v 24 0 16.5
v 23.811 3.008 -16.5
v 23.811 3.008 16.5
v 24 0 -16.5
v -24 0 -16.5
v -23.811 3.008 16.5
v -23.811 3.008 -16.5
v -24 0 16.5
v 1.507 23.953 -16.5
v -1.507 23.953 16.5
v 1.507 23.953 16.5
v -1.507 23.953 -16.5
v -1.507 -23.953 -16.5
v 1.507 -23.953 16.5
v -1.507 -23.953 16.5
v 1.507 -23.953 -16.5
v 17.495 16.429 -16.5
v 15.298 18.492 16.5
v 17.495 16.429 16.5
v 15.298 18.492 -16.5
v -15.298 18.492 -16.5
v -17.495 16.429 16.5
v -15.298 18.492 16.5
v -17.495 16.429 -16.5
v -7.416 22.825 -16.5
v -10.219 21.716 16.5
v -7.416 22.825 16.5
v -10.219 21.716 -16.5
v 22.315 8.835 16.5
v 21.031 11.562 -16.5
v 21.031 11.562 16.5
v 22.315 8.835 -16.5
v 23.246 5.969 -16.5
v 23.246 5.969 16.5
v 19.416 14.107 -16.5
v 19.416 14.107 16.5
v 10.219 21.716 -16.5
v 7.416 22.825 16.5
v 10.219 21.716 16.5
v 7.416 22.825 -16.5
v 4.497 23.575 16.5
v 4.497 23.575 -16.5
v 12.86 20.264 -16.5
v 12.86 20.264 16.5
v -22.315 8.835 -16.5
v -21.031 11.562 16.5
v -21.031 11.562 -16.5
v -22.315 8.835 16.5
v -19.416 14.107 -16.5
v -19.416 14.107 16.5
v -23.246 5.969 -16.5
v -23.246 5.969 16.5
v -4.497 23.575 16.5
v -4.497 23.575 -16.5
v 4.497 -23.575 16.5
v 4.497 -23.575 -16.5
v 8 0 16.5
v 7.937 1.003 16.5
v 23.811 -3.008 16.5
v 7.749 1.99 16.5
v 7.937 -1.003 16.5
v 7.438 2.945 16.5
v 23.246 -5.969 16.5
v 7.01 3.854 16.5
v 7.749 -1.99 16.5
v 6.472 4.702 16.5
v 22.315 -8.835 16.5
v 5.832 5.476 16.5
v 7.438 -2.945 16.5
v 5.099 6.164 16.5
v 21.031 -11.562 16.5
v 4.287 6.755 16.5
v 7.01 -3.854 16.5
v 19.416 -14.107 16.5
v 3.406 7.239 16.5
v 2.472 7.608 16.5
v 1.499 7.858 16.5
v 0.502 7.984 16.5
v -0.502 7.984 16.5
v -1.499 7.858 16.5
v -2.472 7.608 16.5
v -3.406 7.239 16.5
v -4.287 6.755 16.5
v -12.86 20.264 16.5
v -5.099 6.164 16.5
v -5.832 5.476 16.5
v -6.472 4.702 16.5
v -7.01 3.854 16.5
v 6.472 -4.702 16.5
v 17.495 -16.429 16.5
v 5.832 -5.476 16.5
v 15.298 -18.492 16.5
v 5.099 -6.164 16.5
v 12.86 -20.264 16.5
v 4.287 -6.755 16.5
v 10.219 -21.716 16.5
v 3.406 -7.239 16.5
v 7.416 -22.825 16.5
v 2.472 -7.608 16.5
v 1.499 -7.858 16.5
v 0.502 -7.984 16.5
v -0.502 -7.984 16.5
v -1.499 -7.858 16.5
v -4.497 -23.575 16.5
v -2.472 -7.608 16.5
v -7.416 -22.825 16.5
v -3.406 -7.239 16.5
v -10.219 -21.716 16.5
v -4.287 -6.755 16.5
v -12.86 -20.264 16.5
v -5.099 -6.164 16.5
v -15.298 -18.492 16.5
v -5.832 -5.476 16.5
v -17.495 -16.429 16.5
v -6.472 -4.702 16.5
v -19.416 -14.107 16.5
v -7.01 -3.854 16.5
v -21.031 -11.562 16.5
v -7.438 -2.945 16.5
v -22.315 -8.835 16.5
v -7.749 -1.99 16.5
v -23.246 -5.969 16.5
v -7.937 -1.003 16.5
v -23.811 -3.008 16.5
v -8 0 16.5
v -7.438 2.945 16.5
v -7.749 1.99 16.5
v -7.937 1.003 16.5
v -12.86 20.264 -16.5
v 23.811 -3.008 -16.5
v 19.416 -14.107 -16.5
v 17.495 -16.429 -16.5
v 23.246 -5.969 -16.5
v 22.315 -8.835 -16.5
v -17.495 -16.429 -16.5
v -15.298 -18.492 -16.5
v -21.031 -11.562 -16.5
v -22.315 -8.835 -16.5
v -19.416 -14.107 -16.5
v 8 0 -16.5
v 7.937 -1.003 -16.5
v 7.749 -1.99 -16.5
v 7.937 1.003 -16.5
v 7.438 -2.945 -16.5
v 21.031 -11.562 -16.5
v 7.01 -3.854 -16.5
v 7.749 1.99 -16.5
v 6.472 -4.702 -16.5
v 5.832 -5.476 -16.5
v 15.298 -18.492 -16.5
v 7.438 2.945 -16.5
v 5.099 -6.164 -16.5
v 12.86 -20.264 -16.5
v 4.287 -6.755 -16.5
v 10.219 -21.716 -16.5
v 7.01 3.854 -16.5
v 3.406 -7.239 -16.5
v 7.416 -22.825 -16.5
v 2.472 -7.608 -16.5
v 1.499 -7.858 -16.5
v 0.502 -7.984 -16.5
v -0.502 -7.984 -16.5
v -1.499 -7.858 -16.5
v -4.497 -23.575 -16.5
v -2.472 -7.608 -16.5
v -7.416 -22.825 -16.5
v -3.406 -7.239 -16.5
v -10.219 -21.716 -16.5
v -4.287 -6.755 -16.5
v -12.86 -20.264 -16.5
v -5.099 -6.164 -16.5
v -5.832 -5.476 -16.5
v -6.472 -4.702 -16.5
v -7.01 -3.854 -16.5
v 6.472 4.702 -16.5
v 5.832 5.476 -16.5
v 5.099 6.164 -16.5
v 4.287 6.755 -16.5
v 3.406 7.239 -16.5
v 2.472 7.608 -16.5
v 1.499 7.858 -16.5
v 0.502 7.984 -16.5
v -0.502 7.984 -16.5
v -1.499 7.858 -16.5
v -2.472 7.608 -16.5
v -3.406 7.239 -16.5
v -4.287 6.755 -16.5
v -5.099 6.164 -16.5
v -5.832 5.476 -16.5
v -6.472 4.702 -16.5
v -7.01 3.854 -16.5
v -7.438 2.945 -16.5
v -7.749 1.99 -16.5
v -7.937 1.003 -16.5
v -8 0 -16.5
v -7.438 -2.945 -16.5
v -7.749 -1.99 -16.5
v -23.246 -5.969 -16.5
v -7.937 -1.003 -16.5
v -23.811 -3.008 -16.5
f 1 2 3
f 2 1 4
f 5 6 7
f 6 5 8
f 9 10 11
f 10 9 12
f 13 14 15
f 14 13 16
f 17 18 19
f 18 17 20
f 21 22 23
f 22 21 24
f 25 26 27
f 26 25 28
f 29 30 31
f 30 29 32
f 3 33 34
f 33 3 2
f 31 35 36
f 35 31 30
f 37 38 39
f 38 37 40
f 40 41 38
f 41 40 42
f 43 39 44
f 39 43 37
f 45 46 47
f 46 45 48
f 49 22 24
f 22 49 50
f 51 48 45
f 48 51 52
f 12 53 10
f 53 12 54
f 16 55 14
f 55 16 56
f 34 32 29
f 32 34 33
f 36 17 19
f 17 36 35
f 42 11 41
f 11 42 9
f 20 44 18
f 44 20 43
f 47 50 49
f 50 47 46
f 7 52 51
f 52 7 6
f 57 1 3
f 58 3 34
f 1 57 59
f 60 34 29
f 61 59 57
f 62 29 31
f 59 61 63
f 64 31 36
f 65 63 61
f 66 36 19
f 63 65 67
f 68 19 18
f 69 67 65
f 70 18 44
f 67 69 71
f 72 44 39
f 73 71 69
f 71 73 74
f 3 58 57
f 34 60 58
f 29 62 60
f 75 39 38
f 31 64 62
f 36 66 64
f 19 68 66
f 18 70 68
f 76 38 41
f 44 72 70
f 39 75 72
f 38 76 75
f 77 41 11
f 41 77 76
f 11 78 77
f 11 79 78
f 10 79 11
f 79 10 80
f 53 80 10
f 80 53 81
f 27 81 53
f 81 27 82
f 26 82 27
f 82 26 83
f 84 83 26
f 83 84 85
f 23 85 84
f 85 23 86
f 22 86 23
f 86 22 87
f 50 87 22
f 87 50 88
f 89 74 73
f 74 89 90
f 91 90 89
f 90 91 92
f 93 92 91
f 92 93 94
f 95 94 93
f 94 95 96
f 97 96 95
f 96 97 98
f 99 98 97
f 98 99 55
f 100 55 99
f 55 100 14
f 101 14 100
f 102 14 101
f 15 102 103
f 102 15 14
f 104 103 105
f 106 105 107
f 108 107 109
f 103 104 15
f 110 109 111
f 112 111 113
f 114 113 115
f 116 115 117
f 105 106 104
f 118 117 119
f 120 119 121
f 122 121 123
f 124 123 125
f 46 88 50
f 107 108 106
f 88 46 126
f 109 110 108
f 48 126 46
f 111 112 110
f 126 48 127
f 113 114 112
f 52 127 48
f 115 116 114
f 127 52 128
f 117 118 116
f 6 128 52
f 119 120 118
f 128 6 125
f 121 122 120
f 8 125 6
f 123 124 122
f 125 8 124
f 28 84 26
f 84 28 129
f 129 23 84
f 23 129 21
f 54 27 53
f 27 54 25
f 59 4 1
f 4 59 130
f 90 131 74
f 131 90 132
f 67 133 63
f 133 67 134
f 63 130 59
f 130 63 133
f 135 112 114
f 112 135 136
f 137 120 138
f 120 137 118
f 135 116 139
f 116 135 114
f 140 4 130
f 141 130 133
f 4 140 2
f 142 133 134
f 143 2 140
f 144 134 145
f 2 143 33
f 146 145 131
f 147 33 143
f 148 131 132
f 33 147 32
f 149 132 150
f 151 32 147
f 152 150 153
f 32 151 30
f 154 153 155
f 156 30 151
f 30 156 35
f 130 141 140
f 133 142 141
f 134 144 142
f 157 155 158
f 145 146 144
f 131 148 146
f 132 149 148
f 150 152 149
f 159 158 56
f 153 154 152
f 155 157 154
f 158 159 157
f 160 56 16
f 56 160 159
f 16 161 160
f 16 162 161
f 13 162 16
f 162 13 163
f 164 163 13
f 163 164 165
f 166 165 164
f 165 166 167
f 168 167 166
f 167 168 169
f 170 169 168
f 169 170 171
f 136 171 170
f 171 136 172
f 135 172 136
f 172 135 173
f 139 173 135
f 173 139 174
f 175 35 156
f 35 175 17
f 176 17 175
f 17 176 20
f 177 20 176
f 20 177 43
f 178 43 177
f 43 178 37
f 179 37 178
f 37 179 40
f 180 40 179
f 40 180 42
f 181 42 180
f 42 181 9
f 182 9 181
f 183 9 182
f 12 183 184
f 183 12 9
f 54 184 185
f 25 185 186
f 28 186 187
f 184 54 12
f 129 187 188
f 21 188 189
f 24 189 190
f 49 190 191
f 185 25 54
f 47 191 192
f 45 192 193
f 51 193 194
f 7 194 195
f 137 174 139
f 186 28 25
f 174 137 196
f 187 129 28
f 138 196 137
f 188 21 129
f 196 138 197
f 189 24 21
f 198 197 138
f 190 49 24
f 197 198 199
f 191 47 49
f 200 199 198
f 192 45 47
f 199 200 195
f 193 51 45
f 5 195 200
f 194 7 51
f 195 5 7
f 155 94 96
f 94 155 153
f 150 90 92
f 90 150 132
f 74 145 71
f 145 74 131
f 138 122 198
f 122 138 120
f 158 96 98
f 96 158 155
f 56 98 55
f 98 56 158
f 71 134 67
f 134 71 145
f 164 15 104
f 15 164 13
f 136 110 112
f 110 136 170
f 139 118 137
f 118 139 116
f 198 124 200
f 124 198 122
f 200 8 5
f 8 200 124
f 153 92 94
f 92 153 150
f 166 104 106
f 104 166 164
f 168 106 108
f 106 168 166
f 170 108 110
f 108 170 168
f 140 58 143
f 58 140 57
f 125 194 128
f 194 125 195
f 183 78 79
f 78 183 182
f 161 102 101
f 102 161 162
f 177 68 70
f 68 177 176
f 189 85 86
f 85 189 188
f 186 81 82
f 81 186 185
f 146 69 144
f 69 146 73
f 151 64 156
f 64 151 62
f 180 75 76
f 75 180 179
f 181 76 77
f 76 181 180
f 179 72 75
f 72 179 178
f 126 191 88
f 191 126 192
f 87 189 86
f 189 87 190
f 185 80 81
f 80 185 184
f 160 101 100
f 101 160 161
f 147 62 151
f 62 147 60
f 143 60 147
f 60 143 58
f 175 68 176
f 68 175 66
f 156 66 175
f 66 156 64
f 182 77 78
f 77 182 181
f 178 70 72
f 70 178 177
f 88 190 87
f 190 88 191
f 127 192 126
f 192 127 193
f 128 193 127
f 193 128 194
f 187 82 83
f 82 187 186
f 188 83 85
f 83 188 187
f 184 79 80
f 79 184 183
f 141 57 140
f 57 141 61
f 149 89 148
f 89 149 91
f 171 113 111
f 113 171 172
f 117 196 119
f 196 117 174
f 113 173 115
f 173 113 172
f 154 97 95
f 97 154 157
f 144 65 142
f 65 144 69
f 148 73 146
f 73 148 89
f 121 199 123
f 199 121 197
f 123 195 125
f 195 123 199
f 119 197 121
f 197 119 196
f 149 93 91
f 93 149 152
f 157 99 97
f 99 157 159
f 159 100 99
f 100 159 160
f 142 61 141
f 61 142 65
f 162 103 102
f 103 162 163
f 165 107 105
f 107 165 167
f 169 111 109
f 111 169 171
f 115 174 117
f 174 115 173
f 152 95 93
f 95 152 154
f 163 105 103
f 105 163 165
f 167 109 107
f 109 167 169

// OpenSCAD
$fn = 50;


difference() {
	union() {
		translate(v = [0, 0, -16.5000000000]) {
			cylinder(h = 33, r = 24.0000000000);
		}
	}
	union() {
		translate(v = [0, 0, -100.0000000000]) {
			cylinder(h = 200, r = 8);
		}
	}
}
